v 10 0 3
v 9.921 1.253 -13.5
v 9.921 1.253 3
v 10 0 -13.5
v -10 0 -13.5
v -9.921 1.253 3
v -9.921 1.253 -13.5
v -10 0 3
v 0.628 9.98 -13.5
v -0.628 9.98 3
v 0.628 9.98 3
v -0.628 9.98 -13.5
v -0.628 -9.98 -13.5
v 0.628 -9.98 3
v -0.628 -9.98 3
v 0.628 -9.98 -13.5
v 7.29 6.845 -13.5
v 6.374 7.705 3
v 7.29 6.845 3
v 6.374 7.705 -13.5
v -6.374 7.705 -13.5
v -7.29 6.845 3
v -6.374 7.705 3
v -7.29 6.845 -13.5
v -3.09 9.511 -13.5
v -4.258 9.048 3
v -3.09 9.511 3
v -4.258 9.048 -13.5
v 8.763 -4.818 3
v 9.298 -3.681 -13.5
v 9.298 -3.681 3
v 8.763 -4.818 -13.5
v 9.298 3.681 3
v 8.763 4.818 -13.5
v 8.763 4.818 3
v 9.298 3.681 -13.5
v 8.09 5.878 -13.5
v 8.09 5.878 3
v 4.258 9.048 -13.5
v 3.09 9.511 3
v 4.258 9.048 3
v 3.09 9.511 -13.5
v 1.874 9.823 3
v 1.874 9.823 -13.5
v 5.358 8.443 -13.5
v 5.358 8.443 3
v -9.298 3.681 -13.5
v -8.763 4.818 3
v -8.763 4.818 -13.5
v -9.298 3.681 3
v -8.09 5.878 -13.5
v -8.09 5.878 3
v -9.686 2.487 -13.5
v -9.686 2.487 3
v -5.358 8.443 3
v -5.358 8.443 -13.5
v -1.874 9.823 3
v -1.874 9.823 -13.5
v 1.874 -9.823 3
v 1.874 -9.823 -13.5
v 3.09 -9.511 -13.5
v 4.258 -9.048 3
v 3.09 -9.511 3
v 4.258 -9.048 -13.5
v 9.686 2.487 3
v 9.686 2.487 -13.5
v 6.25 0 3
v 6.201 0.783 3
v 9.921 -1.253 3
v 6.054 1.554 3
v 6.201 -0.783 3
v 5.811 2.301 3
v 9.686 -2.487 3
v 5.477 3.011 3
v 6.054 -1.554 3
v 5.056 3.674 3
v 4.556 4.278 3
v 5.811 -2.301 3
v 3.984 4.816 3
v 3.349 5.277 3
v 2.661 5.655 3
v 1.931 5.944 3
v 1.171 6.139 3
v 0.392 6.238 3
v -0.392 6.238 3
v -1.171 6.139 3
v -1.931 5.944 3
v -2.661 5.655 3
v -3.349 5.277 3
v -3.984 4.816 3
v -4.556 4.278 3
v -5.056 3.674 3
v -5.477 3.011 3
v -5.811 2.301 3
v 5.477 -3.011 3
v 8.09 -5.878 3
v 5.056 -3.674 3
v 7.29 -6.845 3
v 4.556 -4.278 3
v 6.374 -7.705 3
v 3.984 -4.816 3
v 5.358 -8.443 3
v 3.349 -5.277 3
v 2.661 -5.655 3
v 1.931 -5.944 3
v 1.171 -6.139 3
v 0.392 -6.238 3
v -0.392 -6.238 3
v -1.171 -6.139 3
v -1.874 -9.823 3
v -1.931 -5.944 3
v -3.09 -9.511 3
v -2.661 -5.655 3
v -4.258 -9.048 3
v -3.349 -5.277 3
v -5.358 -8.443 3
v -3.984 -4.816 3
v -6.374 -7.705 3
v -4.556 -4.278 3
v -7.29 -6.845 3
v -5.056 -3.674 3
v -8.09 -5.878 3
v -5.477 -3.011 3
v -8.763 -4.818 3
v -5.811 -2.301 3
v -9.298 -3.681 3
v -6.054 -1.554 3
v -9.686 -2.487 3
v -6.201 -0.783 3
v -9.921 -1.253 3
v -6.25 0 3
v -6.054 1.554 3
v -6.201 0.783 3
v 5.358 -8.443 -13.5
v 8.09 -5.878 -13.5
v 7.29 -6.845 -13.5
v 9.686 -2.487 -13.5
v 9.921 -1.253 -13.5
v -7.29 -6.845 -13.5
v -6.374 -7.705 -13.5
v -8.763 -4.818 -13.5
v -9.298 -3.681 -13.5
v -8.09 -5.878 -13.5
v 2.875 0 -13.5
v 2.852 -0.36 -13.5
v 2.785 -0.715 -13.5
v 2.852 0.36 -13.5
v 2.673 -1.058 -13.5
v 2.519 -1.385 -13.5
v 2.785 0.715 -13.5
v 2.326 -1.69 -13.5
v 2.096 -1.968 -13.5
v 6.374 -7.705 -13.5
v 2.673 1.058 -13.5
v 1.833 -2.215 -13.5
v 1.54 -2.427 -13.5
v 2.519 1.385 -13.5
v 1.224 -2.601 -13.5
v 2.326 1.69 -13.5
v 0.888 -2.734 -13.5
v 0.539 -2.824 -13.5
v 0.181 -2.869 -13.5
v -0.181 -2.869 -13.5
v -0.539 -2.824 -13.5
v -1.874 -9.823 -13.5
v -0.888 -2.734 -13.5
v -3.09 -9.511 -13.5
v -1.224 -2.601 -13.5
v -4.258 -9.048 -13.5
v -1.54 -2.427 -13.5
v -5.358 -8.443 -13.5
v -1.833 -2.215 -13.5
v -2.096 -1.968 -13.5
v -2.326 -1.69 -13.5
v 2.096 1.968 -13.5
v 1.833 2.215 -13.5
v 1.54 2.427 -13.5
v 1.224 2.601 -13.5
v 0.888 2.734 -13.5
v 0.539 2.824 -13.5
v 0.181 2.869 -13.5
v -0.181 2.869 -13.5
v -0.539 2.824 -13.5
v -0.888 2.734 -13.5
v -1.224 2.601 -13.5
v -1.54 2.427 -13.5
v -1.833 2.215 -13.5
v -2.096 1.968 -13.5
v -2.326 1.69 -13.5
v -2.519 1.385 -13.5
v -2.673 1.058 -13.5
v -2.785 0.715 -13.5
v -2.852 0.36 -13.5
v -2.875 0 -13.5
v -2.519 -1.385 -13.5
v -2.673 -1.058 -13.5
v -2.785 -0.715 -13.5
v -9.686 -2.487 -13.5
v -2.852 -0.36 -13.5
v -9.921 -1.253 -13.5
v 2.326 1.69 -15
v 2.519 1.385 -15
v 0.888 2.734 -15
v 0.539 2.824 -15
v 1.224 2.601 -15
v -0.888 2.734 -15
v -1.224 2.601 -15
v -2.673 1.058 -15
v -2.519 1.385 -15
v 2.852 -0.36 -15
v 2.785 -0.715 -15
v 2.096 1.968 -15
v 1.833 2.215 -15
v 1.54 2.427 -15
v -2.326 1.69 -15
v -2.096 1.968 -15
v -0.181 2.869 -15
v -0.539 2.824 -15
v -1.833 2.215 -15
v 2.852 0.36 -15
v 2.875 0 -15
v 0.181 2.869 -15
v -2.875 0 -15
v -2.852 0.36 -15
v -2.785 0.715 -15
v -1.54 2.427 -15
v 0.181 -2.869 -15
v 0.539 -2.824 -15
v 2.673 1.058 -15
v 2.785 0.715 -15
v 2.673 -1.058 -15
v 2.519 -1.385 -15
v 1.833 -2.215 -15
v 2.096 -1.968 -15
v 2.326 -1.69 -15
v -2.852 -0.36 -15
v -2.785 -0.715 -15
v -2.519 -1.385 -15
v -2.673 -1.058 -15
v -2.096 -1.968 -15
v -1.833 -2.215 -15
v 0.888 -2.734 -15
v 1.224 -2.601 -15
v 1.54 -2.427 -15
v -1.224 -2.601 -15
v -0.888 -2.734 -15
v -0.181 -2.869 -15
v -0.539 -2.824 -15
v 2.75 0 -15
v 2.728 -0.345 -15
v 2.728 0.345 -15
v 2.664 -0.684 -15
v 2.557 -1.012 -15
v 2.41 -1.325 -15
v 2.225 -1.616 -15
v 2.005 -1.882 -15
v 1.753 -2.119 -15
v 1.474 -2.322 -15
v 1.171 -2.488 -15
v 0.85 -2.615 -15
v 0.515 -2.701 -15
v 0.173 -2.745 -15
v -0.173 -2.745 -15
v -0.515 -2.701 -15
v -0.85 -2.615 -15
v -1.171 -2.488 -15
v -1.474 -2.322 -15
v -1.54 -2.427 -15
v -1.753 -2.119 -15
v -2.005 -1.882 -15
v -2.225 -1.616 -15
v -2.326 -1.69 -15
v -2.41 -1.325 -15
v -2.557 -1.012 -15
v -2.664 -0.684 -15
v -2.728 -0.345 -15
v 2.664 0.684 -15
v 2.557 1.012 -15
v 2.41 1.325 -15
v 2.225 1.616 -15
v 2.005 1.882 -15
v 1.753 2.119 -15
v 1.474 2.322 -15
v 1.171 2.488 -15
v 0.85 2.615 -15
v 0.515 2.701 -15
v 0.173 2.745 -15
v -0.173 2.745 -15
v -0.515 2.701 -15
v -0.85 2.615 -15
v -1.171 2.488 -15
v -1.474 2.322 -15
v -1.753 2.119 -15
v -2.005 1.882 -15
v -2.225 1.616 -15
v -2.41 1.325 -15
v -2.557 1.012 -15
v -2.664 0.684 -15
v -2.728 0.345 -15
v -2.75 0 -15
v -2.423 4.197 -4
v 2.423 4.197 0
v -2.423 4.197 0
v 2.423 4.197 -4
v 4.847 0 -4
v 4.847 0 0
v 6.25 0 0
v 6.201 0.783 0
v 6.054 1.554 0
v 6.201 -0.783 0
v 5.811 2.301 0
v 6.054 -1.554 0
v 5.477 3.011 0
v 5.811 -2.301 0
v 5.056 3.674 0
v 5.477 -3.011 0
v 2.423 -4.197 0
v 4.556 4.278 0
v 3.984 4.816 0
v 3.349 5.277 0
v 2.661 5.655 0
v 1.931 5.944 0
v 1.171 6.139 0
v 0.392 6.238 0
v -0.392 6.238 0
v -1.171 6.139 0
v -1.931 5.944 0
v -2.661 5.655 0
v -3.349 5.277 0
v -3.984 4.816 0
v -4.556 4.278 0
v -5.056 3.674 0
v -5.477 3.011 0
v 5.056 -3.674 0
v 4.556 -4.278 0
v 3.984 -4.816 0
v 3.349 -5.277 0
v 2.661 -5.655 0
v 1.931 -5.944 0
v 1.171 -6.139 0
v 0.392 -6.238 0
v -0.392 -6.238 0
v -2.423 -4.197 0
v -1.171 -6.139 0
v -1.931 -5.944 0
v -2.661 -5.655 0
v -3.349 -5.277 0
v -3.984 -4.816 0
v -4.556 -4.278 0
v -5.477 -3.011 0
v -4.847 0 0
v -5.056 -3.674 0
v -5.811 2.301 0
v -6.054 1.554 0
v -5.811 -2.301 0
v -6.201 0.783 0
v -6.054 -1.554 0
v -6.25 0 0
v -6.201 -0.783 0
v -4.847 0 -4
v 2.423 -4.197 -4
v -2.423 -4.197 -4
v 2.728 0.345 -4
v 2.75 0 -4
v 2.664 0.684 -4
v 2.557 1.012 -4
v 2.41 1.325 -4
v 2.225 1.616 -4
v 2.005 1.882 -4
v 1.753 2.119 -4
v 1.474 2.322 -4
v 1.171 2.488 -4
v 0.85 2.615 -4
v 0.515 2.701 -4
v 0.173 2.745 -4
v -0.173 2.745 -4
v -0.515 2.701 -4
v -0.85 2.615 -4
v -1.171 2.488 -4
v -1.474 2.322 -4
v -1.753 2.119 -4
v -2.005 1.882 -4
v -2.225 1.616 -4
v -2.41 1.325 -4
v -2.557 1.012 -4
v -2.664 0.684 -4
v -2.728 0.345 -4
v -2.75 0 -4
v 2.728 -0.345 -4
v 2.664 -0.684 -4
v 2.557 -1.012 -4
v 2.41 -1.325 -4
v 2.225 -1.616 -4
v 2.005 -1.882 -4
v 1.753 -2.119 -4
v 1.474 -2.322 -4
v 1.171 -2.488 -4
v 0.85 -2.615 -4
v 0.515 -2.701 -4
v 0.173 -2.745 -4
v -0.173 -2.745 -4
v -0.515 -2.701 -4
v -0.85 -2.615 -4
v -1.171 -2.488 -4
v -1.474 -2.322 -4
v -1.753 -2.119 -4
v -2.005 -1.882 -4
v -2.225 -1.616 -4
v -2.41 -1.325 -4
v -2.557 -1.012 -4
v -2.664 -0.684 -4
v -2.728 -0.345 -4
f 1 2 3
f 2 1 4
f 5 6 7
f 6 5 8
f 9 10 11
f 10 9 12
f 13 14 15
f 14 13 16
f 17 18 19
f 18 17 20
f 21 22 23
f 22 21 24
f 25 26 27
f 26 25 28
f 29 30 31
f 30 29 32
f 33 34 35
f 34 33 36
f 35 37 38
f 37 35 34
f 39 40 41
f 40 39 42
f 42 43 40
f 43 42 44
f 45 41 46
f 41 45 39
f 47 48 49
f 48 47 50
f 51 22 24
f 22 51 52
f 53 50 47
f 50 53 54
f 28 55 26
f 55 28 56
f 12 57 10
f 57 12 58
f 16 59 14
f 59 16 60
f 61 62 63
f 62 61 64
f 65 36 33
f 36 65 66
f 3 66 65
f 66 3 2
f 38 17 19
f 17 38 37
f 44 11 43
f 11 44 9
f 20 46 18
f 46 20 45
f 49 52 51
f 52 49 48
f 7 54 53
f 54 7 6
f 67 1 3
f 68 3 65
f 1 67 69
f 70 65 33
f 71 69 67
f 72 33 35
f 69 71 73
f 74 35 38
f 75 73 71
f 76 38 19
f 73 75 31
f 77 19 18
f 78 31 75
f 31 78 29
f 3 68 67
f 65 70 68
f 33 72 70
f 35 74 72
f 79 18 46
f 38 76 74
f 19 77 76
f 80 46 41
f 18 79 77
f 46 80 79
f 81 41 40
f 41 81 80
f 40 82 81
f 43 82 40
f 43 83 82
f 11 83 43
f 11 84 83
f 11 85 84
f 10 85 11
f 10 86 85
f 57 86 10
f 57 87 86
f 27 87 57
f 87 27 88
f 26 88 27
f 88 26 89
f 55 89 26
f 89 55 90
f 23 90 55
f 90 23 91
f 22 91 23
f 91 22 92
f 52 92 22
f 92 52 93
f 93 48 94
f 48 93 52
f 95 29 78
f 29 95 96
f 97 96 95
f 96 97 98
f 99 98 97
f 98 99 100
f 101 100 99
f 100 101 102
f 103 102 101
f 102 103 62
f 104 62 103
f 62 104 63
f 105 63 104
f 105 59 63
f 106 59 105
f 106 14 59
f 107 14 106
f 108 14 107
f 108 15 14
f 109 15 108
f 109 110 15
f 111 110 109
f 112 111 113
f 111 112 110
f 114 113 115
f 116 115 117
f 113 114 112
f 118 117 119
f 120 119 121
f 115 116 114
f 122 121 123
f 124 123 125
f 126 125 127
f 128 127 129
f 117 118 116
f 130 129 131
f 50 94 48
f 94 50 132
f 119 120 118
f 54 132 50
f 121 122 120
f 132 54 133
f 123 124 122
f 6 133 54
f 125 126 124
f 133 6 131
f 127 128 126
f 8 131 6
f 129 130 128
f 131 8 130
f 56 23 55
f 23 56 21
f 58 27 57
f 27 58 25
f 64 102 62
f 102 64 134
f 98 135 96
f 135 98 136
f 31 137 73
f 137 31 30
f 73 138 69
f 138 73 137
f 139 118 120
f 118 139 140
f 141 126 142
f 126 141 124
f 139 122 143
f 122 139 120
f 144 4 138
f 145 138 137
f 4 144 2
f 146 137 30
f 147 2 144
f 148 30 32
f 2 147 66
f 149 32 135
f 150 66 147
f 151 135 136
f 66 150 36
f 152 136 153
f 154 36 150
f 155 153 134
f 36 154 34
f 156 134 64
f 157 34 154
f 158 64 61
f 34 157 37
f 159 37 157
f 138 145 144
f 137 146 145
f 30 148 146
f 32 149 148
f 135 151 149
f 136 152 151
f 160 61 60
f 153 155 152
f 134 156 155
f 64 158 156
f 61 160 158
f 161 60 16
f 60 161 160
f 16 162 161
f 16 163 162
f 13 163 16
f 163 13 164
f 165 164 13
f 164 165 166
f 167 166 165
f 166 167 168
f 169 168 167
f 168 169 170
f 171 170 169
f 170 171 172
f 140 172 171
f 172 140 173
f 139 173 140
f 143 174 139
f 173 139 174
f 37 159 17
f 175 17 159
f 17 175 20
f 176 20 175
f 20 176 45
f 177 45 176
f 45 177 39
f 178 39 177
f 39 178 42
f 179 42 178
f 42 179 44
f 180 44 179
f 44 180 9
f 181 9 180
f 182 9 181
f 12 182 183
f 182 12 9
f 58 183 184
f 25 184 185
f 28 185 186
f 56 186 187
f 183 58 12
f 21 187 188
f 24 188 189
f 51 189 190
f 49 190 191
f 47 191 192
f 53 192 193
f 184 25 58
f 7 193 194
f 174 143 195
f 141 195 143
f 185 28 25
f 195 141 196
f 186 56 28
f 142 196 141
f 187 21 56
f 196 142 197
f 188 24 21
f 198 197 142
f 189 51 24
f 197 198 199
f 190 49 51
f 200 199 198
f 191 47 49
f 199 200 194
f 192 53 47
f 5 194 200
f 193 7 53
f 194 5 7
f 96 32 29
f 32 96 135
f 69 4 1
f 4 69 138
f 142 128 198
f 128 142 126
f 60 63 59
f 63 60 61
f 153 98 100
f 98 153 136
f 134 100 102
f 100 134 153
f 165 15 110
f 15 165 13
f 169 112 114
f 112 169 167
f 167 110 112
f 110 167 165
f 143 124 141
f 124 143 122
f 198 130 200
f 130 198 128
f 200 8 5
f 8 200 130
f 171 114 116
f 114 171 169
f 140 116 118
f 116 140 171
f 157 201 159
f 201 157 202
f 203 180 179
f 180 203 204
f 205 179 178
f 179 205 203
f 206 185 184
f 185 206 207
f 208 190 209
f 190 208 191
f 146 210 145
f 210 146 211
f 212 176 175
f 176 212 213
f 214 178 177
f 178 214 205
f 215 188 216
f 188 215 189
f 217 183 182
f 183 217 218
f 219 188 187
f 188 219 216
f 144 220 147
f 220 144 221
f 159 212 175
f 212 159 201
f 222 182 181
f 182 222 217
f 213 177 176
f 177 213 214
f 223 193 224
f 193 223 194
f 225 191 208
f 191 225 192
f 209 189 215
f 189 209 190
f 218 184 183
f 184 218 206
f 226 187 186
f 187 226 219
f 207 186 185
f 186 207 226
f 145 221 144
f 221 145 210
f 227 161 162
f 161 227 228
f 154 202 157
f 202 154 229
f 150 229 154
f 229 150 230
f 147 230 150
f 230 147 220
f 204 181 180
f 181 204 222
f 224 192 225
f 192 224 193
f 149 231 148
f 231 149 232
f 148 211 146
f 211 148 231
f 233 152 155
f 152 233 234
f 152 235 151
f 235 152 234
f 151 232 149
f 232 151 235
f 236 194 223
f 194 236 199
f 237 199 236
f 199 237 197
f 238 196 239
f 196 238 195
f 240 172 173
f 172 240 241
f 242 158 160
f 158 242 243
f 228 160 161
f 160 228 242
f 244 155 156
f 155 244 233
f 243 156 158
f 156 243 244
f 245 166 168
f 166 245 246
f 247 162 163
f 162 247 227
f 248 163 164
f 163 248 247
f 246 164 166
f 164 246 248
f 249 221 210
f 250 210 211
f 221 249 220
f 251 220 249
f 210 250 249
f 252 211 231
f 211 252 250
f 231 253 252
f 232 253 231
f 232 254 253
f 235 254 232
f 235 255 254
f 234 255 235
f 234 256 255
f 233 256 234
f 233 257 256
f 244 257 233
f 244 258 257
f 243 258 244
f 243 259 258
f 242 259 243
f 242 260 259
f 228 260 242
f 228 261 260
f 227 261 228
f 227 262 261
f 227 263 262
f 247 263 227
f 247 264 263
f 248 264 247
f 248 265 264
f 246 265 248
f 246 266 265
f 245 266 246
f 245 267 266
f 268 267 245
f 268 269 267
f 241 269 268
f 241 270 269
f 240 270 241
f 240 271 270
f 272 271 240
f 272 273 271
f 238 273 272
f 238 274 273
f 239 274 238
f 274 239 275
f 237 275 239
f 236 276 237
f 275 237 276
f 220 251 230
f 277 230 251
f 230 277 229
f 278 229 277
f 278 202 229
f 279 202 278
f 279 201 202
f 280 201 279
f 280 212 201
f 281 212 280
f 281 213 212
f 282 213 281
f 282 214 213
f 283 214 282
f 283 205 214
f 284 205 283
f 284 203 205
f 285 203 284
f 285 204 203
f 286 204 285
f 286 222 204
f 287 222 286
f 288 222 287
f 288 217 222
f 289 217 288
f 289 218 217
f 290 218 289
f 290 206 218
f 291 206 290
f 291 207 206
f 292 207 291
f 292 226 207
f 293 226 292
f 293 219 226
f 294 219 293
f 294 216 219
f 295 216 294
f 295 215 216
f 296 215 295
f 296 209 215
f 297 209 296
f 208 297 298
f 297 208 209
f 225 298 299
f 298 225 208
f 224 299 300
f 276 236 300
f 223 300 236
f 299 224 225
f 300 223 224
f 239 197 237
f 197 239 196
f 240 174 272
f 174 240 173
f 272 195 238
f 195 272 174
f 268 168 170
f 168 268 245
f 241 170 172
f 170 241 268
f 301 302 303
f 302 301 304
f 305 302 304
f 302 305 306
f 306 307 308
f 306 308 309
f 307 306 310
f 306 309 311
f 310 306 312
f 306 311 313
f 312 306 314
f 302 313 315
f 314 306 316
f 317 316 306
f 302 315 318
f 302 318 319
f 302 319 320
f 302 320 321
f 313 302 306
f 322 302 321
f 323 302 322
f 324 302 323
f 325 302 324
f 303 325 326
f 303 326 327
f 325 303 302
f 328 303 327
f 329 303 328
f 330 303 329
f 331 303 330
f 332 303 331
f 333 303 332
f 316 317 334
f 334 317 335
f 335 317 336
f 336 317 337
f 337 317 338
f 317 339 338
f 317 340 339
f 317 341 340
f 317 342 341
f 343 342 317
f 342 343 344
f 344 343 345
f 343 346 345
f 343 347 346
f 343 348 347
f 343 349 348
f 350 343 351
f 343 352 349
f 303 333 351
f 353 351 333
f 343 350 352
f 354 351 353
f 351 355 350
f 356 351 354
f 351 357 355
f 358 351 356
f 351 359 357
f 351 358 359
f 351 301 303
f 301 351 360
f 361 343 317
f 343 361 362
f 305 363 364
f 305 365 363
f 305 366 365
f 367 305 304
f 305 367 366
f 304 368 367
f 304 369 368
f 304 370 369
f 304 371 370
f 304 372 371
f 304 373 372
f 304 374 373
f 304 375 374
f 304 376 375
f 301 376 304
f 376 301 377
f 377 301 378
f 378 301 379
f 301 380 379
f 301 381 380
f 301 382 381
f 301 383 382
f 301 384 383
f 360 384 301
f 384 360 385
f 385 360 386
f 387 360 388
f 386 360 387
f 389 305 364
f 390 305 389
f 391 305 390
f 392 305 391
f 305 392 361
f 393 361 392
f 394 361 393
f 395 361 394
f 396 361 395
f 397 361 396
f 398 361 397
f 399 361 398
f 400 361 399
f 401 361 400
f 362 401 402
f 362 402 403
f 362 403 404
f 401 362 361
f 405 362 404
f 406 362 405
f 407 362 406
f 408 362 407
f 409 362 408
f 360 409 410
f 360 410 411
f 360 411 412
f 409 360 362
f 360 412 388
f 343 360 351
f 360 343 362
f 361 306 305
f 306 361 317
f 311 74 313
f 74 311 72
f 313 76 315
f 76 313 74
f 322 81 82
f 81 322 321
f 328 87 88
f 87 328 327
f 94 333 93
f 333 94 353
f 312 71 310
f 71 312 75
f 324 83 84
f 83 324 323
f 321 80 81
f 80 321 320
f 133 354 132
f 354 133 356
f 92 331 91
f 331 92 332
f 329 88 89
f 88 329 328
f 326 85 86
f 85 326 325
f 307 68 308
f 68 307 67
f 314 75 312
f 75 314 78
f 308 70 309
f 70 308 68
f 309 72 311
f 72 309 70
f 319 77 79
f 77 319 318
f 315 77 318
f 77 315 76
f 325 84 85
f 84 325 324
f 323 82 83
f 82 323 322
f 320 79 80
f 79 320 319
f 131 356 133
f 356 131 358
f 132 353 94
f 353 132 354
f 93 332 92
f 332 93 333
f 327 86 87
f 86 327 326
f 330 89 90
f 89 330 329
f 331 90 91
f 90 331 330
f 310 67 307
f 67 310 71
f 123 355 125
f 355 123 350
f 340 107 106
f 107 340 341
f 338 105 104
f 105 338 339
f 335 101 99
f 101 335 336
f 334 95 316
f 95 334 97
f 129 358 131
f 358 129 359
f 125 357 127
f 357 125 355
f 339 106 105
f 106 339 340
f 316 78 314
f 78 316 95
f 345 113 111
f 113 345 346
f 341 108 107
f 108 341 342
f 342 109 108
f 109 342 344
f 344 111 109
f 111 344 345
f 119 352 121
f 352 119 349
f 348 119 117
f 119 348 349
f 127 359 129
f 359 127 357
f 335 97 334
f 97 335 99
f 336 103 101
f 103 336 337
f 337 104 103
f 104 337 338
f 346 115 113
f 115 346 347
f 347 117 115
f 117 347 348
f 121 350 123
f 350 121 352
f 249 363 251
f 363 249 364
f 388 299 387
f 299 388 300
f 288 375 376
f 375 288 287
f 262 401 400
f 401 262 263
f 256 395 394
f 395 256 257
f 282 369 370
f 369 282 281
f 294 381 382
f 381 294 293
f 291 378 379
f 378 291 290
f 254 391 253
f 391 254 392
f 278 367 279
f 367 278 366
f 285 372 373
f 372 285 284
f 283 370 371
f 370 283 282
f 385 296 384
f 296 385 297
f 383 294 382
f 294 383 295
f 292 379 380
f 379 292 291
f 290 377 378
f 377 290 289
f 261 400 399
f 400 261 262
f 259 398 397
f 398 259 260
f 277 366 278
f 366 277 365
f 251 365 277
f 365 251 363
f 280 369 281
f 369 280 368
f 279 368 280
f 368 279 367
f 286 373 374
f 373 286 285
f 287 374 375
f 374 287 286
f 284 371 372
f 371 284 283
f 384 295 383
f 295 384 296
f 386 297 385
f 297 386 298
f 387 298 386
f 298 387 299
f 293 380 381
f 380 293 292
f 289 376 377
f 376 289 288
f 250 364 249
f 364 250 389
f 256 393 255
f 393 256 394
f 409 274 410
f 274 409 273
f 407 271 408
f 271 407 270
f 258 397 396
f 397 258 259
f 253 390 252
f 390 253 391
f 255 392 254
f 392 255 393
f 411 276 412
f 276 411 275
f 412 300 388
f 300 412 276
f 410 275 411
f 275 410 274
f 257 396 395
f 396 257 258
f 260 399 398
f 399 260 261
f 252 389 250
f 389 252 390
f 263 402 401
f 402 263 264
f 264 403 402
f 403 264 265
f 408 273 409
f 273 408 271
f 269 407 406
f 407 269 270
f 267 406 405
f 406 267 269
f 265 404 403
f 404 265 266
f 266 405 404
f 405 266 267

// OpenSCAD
$fn = 50;

difference() {
	union() {
		translate(v = [0, 0, -13.5]) {
			cylinder(h = 16.5, r = 10.0);
		}
		#translate(v = [0, 0, -15.0]) {
			cylinder(h = 15, r = 2.875);
		}
	}
	union() {
		translate(v = [0, 0, 0]) {
			rotate(a = [0, 0, 0]) {
				difference() {
					union() {
						translate(v = [0, 0, -4]) {
							linear_extrude(height = 4) {
								polygon(points = [[4.8468, 0.0], [2.4234000000000004, 4.197451927062417], [-2.423399999999999, 4.197451927062417], [-4.8468, 5.935618106107392e-16], [-2.423400000000002, -4.197451927062416], [2.423399999999997, -4.197451927062419]]);
							}
						}
					}
					union();
				}
			}
		}
		#cylinder(h = 3, r = 6.25);
		#translate(v = [0, 0, -100.0]) {
			cylinder(h = 200, r = 2.75);
		}
	}
}
